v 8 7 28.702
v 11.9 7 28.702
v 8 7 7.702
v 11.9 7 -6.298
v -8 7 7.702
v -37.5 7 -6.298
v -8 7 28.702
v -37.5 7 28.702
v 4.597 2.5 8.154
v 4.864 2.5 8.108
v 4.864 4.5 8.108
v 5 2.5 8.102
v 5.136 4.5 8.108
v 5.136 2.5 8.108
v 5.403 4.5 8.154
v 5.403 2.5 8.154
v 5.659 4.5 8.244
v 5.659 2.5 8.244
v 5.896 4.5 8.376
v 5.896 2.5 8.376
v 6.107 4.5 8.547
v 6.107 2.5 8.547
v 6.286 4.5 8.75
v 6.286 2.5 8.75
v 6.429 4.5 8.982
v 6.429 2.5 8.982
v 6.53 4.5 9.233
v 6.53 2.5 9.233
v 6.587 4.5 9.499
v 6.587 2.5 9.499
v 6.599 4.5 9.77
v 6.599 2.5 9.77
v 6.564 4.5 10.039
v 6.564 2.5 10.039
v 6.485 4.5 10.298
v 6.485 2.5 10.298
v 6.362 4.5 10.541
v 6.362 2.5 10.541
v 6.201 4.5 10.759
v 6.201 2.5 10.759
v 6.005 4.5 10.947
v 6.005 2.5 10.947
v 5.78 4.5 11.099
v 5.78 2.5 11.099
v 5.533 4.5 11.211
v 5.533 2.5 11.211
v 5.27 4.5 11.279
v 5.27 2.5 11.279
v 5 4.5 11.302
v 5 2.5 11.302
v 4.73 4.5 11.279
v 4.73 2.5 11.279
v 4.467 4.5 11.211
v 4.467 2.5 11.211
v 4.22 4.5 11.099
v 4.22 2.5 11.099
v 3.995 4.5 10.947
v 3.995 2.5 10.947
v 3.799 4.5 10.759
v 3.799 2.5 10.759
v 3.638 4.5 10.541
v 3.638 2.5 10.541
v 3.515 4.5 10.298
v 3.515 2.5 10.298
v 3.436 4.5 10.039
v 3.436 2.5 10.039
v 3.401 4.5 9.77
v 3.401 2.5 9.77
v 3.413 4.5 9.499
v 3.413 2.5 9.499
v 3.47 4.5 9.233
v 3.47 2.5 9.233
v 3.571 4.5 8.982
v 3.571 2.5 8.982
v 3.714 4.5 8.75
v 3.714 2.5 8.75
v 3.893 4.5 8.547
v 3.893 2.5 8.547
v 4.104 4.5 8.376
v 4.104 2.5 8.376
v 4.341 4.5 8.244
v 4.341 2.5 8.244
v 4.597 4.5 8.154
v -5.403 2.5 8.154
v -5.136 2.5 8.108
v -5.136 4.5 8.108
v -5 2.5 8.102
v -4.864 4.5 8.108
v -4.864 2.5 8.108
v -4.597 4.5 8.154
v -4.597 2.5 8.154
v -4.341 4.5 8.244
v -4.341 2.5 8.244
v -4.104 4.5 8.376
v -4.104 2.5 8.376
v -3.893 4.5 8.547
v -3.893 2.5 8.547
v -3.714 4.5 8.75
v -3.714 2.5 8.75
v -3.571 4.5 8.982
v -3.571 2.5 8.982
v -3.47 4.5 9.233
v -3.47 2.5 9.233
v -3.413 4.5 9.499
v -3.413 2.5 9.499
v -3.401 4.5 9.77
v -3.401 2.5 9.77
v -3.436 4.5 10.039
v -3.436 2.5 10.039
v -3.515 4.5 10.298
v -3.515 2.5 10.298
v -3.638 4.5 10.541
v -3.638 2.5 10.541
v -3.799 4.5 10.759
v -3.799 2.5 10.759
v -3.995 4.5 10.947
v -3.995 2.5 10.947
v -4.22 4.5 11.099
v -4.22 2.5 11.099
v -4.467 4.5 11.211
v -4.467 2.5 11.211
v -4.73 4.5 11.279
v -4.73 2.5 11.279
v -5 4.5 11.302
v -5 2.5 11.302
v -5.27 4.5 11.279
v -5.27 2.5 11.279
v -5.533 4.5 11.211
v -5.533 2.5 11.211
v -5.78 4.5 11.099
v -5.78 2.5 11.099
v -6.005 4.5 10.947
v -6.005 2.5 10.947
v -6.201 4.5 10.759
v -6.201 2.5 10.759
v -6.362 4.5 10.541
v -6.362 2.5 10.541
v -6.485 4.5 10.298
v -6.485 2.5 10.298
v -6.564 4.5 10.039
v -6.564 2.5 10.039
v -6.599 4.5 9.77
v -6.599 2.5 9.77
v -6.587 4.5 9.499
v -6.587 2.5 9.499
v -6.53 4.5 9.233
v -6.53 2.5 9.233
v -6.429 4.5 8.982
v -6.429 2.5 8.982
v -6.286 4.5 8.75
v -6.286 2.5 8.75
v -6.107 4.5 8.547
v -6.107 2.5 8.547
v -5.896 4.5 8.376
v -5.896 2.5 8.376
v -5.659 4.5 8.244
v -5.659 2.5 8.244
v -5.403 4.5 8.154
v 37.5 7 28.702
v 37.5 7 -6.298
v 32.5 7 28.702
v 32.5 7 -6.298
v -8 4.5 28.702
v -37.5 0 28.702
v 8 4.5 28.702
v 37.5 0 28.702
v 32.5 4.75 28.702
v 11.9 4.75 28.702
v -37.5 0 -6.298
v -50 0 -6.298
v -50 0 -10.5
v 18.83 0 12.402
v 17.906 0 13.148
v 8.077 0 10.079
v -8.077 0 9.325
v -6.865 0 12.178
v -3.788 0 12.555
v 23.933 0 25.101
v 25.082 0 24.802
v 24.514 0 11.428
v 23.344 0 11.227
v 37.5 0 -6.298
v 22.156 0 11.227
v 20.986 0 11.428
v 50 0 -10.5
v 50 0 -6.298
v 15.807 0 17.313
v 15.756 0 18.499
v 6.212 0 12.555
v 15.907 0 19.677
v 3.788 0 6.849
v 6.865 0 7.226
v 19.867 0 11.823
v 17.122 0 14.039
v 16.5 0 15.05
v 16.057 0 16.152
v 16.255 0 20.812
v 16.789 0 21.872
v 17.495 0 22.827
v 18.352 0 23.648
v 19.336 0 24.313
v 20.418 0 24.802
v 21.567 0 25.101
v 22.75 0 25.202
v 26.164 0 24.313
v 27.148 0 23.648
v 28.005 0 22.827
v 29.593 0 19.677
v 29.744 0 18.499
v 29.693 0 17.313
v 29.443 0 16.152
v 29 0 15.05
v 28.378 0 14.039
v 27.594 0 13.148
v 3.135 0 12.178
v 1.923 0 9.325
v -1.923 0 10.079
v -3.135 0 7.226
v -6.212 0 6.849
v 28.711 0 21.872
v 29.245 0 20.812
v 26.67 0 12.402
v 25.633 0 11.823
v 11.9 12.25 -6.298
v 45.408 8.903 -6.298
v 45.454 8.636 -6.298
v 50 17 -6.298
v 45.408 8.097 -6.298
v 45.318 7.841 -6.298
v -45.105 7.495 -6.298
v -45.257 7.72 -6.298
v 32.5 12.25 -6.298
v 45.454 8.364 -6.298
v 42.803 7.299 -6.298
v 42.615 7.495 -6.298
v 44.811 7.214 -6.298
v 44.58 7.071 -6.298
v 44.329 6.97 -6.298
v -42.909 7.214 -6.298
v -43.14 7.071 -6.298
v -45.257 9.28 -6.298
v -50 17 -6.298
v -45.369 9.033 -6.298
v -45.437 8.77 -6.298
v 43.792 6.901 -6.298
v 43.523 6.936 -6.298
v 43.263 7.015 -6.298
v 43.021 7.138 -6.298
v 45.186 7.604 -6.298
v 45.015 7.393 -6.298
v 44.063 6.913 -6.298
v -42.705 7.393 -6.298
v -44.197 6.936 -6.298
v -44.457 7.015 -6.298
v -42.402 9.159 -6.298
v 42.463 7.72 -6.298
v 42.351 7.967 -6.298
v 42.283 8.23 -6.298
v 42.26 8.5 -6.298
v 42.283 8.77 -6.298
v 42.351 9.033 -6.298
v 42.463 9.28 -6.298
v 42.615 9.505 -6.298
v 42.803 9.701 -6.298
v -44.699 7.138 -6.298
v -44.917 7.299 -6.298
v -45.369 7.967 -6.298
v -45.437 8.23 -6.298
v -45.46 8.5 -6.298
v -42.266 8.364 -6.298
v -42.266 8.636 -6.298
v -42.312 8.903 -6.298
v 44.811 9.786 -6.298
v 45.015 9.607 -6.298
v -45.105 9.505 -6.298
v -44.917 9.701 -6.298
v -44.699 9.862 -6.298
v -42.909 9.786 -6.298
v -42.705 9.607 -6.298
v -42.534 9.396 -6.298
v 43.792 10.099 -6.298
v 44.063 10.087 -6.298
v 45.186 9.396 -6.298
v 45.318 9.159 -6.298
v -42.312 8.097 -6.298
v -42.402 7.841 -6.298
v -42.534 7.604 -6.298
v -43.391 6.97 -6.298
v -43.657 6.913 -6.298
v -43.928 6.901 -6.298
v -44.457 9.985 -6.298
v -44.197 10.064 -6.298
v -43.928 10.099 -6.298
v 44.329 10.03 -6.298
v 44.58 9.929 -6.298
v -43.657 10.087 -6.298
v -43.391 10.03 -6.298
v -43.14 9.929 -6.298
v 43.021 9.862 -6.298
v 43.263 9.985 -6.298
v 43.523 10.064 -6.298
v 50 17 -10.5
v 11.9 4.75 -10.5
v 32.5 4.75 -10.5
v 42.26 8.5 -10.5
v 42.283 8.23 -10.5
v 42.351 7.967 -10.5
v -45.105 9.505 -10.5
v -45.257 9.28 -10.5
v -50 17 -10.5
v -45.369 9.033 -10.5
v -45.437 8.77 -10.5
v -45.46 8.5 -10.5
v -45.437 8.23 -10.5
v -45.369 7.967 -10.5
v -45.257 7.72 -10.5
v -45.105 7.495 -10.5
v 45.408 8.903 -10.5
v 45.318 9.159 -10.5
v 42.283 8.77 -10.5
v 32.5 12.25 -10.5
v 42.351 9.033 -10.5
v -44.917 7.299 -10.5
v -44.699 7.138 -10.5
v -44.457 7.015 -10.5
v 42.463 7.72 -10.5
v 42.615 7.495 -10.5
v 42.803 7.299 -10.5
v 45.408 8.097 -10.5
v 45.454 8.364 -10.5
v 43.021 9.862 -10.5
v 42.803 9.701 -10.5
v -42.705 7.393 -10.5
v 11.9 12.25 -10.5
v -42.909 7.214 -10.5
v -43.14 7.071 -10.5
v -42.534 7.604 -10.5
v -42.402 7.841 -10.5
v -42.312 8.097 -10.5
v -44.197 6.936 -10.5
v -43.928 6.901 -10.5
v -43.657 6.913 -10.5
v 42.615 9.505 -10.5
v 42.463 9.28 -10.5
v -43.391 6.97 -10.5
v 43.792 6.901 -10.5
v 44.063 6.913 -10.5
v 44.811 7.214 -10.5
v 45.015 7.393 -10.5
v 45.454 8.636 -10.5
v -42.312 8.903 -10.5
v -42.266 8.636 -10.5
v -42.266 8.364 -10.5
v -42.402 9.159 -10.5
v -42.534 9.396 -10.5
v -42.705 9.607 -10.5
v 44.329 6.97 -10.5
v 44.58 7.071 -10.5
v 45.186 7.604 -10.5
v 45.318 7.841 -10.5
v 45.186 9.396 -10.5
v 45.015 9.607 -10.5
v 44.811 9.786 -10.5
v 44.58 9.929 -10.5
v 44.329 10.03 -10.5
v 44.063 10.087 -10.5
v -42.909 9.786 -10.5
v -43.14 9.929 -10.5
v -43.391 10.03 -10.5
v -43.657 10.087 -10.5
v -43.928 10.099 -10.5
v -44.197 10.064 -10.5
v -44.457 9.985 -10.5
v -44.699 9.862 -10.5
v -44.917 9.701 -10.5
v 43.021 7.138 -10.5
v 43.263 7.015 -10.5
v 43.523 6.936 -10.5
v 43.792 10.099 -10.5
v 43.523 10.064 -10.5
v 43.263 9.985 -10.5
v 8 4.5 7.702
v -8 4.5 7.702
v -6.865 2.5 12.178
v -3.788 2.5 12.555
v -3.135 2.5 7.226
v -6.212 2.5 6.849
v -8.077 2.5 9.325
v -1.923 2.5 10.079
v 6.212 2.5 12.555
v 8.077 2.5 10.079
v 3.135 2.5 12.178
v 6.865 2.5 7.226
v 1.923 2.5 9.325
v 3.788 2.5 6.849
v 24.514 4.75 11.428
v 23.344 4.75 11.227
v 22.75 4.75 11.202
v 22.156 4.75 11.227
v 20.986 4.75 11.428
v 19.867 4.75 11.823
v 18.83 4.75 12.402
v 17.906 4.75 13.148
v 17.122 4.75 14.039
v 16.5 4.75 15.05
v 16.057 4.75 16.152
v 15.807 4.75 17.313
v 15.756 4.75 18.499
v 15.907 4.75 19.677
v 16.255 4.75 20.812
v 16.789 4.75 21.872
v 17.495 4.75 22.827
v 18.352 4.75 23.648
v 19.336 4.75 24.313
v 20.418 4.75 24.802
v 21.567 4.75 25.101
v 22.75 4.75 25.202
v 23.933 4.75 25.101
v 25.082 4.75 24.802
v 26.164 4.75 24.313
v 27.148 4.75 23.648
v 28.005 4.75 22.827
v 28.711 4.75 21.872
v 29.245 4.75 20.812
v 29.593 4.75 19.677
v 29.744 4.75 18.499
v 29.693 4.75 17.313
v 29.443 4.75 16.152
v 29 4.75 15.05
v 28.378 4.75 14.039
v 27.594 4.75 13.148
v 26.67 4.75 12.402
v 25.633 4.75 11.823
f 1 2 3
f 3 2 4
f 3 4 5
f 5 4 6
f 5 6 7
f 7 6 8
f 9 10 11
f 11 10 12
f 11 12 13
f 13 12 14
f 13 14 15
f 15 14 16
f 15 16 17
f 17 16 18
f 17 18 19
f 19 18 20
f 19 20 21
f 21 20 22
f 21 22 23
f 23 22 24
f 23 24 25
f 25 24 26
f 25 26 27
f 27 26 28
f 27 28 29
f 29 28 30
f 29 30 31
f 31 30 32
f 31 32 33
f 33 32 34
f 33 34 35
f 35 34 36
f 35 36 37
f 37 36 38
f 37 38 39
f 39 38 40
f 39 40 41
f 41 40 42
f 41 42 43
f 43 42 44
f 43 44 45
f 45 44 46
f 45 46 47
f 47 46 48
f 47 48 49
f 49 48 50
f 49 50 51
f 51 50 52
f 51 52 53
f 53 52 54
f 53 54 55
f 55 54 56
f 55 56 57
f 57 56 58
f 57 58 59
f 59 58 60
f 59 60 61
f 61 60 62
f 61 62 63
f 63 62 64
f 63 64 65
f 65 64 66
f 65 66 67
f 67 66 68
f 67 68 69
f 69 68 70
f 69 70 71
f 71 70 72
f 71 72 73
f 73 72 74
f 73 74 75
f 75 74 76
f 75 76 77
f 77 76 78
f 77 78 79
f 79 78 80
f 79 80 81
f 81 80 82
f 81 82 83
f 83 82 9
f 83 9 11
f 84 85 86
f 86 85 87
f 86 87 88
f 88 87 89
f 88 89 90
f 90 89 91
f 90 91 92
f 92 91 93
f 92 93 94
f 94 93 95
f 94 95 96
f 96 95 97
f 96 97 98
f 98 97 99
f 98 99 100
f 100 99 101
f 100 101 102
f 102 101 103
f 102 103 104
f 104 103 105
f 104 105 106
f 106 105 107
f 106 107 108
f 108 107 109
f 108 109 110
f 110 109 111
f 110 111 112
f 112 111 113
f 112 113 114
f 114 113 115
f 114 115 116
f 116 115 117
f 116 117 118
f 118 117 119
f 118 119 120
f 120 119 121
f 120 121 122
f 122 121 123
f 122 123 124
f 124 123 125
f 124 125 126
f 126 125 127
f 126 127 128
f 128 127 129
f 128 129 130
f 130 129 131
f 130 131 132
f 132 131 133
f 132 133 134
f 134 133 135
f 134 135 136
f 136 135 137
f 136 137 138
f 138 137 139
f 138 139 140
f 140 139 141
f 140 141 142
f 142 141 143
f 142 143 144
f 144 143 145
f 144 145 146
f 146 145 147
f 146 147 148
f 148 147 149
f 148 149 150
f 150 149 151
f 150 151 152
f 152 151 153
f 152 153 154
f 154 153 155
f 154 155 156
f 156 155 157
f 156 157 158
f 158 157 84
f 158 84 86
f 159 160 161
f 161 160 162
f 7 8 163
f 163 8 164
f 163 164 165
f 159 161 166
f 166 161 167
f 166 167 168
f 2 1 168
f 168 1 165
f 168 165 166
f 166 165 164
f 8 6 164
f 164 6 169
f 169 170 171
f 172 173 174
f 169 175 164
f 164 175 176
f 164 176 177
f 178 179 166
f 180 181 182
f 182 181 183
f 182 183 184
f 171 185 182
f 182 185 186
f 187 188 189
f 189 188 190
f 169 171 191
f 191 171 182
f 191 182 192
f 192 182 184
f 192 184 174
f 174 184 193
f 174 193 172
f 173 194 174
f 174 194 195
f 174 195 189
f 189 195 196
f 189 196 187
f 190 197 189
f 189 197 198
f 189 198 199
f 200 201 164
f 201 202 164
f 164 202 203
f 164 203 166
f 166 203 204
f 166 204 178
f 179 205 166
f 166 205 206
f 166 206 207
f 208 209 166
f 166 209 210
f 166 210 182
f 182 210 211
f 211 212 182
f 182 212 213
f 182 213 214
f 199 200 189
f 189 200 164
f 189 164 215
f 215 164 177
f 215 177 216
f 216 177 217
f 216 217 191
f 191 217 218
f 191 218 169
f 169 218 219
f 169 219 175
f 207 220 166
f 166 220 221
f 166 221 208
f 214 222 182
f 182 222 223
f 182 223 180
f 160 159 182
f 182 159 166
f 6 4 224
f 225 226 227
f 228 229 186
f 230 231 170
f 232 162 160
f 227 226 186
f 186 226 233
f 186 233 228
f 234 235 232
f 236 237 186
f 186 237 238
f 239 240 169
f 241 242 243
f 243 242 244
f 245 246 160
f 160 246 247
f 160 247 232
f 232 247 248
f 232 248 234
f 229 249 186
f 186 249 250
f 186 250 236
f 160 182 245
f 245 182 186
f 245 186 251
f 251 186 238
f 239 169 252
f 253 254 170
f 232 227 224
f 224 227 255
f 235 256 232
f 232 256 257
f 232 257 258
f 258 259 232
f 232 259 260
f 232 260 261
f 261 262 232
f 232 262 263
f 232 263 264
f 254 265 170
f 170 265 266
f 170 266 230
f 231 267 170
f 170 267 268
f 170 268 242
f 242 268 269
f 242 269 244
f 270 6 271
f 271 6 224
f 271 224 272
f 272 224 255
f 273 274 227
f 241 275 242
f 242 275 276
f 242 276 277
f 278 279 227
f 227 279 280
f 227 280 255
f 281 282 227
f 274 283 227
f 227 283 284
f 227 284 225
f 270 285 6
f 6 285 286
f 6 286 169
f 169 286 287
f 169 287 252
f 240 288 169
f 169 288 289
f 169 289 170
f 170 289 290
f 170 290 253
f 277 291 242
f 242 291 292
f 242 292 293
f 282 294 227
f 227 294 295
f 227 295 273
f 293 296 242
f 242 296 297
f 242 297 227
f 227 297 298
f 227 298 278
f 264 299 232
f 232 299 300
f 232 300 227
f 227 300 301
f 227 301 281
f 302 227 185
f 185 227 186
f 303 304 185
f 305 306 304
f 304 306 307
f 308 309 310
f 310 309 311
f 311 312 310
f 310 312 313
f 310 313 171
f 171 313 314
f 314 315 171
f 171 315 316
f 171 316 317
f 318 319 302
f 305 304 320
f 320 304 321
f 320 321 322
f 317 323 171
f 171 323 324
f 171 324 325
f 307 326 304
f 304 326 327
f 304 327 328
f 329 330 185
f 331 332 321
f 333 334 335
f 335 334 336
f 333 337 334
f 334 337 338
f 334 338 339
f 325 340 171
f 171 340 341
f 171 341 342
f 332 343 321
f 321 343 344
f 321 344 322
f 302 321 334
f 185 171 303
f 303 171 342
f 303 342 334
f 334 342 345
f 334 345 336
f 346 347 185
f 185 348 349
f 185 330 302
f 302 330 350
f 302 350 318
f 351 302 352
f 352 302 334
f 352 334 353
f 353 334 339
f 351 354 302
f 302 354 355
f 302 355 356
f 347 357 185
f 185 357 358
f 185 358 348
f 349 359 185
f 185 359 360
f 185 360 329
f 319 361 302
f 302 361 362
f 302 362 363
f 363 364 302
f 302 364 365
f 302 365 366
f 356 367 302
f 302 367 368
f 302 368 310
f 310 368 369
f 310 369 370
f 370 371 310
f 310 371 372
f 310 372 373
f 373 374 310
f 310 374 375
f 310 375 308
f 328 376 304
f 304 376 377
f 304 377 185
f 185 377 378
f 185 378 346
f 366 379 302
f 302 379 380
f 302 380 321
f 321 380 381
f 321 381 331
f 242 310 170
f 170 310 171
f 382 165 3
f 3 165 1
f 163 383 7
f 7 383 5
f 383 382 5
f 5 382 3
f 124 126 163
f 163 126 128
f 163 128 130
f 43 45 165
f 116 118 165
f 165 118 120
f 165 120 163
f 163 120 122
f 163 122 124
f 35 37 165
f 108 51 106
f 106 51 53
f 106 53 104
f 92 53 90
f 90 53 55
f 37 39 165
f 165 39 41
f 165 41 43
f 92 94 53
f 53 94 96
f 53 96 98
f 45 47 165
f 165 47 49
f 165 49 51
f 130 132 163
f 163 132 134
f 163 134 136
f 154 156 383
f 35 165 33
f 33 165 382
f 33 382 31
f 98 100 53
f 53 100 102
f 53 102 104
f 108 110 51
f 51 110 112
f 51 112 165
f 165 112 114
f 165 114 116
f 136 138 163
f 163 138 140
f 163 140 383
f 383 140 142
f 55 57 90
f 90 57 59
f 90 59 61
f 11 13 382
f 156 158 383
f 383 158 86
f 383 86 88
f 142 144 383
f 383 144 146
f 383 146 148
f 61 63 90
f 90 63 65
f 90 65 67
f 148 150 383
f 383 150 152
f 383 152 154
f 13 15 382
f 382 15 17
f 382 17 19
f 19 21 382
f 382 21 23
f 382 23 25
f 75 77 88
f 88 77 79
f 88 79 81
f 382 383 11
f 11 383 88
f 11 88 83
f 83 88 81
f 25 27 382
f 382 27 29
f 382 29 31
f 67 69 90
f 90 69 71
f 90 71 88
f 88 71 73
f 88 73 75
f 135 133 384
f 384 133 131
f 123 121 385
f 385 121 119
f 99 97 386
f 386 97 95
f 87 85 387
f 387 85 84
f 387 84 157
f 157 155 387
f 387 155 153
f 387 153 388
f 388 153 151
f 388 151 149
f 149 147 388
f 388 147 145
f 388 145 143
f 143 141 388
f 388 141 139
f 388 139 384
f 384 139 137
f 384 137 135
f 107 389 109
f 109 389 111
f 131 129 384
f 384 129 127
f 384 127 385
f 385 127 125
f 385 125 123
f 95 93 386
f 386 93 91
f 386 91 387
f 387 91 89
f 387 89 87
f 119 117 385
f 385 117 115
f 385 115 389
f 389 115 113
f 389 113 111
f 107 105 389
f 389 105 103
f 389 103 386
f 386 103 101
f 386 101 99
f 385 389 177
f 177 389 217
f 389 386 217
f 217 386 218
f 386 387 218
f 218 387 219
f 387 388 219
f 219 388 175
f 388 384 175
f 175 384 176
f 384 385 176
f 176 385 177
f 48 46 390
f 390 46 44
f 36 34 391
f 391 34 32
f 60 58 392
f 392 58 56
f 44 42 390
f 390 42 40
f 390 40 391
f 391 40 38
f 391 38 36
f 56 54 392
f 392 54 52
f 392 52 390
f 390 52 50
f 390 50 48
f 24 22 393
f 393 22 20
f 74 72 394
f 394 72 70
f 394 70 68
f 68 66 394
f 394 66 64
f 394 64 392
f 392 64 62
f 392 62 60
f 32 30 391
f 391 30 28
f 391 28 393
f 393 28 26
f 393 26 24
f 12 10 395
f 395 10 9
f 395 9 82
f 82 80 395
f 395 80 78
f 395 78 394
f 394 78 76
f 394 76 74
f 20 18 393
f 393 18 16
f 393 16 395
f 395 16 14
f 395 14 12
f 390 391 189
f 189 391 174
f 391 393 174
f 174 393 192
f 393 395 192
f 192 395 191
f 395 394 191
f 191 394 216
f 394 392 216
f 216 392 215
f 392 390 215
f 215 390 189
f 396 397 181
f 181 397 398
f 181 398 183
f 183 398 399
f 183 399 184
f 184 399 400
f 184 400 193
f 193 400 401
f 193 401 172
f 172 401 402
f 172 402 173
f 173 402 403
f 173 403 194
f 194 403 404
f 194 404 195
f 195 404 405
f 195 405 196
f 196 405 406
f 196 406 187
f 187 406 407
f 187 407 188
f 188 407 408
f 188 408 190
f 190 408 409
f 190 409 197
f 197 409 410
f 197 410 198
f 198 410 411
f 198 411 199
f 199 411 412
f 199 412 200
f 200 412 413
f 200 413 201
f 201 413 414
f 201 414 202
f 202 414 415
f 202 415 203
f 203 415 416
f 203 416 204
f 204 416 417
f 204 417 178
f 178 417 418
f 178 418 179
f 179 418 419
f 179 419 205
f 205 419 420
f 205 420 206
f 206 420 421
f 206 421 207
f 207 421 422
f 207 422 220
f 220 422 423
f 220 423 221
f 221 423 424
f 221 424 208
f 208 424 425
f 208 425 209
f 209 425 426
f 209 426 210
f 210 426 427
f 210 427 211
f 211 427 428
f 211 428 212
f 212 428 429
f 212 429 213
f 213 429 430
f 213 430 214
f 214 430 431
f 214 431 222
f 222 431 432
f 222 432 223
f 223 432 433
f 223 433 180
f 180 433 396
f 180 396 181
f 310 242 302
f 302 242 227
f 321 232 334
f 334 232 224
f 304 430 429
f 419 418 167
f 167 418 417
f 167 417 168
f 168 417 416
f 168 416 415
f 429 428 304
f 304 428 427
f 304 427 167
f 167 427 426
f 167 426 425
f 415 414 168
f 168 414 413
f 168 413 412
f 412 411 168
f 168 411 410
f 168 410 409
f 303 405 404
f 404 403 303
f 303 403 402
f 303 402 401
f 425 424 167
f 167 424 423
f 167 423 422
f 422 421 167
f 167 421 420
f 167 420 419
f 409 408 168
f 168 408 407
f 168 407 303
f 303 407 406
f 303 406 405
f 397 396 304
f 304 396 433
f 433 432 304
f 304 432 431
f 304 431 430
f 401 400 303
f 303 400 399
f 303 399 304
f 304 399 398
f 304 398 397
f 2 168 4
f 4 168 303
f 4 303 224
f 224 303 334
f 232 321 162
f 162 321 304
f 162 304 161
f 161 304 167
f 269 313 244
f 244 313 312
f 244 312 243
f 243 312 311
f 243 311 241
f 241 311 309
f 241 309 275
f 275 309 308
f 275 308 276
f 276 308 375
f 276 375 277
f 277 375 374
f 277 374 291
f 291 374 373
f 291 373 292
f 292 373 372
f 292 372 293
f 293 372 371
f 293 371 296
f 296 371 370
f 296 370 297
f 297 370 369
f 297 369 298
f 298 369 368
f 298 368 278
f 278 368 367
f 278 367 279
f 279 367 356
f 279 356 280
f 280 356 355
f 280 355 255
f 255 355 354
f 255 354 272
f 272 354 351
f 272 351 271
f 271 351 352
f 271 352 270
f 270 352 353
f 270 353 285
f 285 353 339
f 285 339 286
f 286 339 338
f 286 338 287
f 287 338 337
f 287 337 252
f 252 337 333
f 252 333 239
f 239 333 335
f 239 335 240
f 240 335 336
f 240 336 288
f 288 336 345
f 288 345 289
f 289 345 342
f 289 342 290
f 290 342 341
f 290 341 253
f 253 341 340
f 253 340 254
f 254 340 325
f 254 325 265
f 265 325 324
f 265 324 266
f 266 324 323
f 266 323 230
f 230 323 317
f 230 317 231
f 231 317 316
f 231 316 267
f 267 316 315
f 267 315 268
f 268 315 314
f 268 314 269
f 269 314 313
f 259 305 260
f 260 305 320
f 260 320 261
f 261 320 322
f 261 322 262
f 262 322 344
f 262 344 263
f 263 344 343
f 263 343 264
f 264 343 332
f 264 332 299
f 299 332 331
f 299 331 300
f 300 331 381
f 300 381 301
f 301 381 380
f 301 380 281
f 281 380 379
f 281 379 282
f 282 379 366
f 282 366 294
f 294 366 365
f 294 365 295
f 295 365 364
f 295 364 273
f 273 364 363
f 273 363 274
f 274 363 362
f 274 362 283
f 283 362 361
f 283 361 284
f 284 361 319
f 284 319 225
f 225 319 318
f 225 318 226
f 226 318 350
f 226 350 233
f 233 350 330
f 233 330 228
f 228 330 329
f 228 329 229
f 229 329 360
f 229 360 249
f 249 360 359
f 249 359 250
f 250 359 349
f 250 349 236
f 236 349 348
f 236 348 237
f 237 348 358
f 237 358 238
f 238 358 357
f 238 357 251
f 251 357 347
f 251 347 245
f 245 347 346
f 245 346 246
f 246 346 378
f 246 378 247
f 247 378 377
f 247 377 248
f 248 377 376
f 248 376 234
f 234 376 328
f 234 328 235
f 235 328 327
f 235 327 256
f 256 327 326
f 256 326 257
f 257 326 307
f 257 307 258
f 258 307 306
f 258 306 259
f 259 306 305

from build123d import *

# Parameters (mm, degrees)
SKETCH1_W                 = 75
SKETCH1_H                 = 16.798090687
SKETCH1_H_2               = 35
BODY_DEPTH                = 7
SKETCH3_W                 = 16
SKETCH3_H                 = 21
CHIP_DIVET_DEPTH          = 2.5
SKETCH4_R                 = 1.6
CHIP_MOUNTING_HOLES_DEPTH = 58.827758025
CHIP_CAPTIVE_NUTS_DEPTH   = 2.5
SKETCH6_R                 = 7
ROUTING_HOLE_DEPTH        = 59.075809062
SKETCH7_W                 = 100
SKETCH7_H                 = 4.201909313
FACE_PLATE_DEPTH          = 10
SKETCH8_W                 = 20.6
SKETCH8_H                 = 7.5
SWITCH_HOLE_DEPTH         = 66.770735847
SKETCH2_R                 = 1.6
MOUNTING_HOLES_DEPTH      = 66.770735847


with BuildPart() as part:
    # Sketch1 → body (new body)
    with BuildSketch(Plane(origin=(0, 0, 0), x_dir=(1, 0, 0), z_dir=(0, 1, 0))):
        Polygon((-50, 6.298090687), (-37.5, 6.298090687), (37.5, 6.298090687), (50, 6.298090687), (50, 10.5), (-50, 10.5), align=None)
        with Locations((0, -2.100954656)):
            Rectangle(SKETCH1_W, SKETCH1_H)
        with Locations((0, -11.201909313)):
            Rectangle(SKETCH1_W, SKETCH1_H_2)
    extrude(amount=BODY_DEPTH)

    # Sketch3 → chip-divet (cut)
    with BuildSketch(Plane(origin=(0, 7, 0), x_dir=(1, 0, 0), z_dir=(0, 1, 0))):
        with Locations((0, -18.201909313)):
            Rectangle(SKETCH3_W, SKETCH3_H)
    extrude(amount=-CHIP_DIVET_DEPTH, mode=Mode.SUBTRACT)

    # Sketch4 → chip-mounting-holes (cut, through all)
    with BuildSketch(Plane(origin=(0, 4.5, 0), x_dir=(1, 0, 0), z_dir=(0, 1, 0))):
        with Locations(Location((-5, -9.701909313, 0), (0, 0, 270))):
            Circle(SKETCH4_R)
        with Locations(Location((5, -9.701909313, 0), (0, 0, 270))):
            Circle(SKETCH4_R)
    extrude(amount=-CHIP_MOUNTING_HOLES_DEPTH, mode=Mode.SUBTRACT)

    # Sketch5 → chip-captive-nuts (cut)
    with BuildSketch(Plane.XZ):
        Polygon((6.21170825, 12.555286806), (3.13475673, 12.177968186), (1.92304848, 9.324590694), (3.78829175, 6.848531821), (6.86524327, 7.22585044), (8.07695152, 10.079227933), align=None)
        Polygon((-3.78829175, 12.555286806), (-6.86524327, 12.177968186), (-8.07695152, 9.324590694), (-6.21170825, 6.848531821), (-3.13475673, 7.22585044), (-1.92304848, 10.079227933), align=None)
    extrude(amount=-CHIP_CAPTIVE_NUTS_DEPTH, mode=Mode.SUBTRACT)

    # Sketch6 → routing-hole (cut, through all)
    with BuildSketch(Plane(origin=(0, 7, 0), x_dir=(1, 0, 0), z_dir=(0, 1, 0))):
        with Locations(Location((22.75, -18.201909313, 0), (0, 0, 270))):
            Circle(SKETCH6_R)
    extrude(amount=-ROUTING_HOLE_DEPTH, mode=Mode.SUBTRACT)

    # Sketch7 → face-plate (add)
    with BuildSketch(Plane(origin=(0, 7, 0), x_dir=(1, 0, 0), z_dir=(0, 1, 0))):
        with Locations((0, 8.399045343)):
            Rectangle(SKETCH7_W, SKETCH7_H)
    extrude(amount=FACE_PLATE_DEPTH)

    # Sketch8 → switch-hole (cut, through all)
    with BuildSketch(Plane(origin=(0, 0, -10.5), x_dir=(-1, 0, 0), z_dir=(0, 0, -1))):
        with Locations((-22.2, 8.5)):
            Rectangle(SKETCH8_W, SKETCH8_H)
    extrude(amount=-SWITCH_HOLE_DEPTH, mode=Mode.SUBTRACT)

    # Sketch2 → mounting-holes (cut, through all)
    with BuildSketch(Plane(origin=(0, 0, -10.5), x_dir=(-1, 0, 0), z_dir=(0, 0, -1))):
        with Locations((-43.86, 8.5)):
            Circle(SKETCH2_R)
        with Locations((43.86, 8.5)):
            Circle(SKETCH2_R)
    extrude(amount=-MOUNTING_HOLES_DEPTH, mode=Mode.SUBTRACT)


solid = part.part
